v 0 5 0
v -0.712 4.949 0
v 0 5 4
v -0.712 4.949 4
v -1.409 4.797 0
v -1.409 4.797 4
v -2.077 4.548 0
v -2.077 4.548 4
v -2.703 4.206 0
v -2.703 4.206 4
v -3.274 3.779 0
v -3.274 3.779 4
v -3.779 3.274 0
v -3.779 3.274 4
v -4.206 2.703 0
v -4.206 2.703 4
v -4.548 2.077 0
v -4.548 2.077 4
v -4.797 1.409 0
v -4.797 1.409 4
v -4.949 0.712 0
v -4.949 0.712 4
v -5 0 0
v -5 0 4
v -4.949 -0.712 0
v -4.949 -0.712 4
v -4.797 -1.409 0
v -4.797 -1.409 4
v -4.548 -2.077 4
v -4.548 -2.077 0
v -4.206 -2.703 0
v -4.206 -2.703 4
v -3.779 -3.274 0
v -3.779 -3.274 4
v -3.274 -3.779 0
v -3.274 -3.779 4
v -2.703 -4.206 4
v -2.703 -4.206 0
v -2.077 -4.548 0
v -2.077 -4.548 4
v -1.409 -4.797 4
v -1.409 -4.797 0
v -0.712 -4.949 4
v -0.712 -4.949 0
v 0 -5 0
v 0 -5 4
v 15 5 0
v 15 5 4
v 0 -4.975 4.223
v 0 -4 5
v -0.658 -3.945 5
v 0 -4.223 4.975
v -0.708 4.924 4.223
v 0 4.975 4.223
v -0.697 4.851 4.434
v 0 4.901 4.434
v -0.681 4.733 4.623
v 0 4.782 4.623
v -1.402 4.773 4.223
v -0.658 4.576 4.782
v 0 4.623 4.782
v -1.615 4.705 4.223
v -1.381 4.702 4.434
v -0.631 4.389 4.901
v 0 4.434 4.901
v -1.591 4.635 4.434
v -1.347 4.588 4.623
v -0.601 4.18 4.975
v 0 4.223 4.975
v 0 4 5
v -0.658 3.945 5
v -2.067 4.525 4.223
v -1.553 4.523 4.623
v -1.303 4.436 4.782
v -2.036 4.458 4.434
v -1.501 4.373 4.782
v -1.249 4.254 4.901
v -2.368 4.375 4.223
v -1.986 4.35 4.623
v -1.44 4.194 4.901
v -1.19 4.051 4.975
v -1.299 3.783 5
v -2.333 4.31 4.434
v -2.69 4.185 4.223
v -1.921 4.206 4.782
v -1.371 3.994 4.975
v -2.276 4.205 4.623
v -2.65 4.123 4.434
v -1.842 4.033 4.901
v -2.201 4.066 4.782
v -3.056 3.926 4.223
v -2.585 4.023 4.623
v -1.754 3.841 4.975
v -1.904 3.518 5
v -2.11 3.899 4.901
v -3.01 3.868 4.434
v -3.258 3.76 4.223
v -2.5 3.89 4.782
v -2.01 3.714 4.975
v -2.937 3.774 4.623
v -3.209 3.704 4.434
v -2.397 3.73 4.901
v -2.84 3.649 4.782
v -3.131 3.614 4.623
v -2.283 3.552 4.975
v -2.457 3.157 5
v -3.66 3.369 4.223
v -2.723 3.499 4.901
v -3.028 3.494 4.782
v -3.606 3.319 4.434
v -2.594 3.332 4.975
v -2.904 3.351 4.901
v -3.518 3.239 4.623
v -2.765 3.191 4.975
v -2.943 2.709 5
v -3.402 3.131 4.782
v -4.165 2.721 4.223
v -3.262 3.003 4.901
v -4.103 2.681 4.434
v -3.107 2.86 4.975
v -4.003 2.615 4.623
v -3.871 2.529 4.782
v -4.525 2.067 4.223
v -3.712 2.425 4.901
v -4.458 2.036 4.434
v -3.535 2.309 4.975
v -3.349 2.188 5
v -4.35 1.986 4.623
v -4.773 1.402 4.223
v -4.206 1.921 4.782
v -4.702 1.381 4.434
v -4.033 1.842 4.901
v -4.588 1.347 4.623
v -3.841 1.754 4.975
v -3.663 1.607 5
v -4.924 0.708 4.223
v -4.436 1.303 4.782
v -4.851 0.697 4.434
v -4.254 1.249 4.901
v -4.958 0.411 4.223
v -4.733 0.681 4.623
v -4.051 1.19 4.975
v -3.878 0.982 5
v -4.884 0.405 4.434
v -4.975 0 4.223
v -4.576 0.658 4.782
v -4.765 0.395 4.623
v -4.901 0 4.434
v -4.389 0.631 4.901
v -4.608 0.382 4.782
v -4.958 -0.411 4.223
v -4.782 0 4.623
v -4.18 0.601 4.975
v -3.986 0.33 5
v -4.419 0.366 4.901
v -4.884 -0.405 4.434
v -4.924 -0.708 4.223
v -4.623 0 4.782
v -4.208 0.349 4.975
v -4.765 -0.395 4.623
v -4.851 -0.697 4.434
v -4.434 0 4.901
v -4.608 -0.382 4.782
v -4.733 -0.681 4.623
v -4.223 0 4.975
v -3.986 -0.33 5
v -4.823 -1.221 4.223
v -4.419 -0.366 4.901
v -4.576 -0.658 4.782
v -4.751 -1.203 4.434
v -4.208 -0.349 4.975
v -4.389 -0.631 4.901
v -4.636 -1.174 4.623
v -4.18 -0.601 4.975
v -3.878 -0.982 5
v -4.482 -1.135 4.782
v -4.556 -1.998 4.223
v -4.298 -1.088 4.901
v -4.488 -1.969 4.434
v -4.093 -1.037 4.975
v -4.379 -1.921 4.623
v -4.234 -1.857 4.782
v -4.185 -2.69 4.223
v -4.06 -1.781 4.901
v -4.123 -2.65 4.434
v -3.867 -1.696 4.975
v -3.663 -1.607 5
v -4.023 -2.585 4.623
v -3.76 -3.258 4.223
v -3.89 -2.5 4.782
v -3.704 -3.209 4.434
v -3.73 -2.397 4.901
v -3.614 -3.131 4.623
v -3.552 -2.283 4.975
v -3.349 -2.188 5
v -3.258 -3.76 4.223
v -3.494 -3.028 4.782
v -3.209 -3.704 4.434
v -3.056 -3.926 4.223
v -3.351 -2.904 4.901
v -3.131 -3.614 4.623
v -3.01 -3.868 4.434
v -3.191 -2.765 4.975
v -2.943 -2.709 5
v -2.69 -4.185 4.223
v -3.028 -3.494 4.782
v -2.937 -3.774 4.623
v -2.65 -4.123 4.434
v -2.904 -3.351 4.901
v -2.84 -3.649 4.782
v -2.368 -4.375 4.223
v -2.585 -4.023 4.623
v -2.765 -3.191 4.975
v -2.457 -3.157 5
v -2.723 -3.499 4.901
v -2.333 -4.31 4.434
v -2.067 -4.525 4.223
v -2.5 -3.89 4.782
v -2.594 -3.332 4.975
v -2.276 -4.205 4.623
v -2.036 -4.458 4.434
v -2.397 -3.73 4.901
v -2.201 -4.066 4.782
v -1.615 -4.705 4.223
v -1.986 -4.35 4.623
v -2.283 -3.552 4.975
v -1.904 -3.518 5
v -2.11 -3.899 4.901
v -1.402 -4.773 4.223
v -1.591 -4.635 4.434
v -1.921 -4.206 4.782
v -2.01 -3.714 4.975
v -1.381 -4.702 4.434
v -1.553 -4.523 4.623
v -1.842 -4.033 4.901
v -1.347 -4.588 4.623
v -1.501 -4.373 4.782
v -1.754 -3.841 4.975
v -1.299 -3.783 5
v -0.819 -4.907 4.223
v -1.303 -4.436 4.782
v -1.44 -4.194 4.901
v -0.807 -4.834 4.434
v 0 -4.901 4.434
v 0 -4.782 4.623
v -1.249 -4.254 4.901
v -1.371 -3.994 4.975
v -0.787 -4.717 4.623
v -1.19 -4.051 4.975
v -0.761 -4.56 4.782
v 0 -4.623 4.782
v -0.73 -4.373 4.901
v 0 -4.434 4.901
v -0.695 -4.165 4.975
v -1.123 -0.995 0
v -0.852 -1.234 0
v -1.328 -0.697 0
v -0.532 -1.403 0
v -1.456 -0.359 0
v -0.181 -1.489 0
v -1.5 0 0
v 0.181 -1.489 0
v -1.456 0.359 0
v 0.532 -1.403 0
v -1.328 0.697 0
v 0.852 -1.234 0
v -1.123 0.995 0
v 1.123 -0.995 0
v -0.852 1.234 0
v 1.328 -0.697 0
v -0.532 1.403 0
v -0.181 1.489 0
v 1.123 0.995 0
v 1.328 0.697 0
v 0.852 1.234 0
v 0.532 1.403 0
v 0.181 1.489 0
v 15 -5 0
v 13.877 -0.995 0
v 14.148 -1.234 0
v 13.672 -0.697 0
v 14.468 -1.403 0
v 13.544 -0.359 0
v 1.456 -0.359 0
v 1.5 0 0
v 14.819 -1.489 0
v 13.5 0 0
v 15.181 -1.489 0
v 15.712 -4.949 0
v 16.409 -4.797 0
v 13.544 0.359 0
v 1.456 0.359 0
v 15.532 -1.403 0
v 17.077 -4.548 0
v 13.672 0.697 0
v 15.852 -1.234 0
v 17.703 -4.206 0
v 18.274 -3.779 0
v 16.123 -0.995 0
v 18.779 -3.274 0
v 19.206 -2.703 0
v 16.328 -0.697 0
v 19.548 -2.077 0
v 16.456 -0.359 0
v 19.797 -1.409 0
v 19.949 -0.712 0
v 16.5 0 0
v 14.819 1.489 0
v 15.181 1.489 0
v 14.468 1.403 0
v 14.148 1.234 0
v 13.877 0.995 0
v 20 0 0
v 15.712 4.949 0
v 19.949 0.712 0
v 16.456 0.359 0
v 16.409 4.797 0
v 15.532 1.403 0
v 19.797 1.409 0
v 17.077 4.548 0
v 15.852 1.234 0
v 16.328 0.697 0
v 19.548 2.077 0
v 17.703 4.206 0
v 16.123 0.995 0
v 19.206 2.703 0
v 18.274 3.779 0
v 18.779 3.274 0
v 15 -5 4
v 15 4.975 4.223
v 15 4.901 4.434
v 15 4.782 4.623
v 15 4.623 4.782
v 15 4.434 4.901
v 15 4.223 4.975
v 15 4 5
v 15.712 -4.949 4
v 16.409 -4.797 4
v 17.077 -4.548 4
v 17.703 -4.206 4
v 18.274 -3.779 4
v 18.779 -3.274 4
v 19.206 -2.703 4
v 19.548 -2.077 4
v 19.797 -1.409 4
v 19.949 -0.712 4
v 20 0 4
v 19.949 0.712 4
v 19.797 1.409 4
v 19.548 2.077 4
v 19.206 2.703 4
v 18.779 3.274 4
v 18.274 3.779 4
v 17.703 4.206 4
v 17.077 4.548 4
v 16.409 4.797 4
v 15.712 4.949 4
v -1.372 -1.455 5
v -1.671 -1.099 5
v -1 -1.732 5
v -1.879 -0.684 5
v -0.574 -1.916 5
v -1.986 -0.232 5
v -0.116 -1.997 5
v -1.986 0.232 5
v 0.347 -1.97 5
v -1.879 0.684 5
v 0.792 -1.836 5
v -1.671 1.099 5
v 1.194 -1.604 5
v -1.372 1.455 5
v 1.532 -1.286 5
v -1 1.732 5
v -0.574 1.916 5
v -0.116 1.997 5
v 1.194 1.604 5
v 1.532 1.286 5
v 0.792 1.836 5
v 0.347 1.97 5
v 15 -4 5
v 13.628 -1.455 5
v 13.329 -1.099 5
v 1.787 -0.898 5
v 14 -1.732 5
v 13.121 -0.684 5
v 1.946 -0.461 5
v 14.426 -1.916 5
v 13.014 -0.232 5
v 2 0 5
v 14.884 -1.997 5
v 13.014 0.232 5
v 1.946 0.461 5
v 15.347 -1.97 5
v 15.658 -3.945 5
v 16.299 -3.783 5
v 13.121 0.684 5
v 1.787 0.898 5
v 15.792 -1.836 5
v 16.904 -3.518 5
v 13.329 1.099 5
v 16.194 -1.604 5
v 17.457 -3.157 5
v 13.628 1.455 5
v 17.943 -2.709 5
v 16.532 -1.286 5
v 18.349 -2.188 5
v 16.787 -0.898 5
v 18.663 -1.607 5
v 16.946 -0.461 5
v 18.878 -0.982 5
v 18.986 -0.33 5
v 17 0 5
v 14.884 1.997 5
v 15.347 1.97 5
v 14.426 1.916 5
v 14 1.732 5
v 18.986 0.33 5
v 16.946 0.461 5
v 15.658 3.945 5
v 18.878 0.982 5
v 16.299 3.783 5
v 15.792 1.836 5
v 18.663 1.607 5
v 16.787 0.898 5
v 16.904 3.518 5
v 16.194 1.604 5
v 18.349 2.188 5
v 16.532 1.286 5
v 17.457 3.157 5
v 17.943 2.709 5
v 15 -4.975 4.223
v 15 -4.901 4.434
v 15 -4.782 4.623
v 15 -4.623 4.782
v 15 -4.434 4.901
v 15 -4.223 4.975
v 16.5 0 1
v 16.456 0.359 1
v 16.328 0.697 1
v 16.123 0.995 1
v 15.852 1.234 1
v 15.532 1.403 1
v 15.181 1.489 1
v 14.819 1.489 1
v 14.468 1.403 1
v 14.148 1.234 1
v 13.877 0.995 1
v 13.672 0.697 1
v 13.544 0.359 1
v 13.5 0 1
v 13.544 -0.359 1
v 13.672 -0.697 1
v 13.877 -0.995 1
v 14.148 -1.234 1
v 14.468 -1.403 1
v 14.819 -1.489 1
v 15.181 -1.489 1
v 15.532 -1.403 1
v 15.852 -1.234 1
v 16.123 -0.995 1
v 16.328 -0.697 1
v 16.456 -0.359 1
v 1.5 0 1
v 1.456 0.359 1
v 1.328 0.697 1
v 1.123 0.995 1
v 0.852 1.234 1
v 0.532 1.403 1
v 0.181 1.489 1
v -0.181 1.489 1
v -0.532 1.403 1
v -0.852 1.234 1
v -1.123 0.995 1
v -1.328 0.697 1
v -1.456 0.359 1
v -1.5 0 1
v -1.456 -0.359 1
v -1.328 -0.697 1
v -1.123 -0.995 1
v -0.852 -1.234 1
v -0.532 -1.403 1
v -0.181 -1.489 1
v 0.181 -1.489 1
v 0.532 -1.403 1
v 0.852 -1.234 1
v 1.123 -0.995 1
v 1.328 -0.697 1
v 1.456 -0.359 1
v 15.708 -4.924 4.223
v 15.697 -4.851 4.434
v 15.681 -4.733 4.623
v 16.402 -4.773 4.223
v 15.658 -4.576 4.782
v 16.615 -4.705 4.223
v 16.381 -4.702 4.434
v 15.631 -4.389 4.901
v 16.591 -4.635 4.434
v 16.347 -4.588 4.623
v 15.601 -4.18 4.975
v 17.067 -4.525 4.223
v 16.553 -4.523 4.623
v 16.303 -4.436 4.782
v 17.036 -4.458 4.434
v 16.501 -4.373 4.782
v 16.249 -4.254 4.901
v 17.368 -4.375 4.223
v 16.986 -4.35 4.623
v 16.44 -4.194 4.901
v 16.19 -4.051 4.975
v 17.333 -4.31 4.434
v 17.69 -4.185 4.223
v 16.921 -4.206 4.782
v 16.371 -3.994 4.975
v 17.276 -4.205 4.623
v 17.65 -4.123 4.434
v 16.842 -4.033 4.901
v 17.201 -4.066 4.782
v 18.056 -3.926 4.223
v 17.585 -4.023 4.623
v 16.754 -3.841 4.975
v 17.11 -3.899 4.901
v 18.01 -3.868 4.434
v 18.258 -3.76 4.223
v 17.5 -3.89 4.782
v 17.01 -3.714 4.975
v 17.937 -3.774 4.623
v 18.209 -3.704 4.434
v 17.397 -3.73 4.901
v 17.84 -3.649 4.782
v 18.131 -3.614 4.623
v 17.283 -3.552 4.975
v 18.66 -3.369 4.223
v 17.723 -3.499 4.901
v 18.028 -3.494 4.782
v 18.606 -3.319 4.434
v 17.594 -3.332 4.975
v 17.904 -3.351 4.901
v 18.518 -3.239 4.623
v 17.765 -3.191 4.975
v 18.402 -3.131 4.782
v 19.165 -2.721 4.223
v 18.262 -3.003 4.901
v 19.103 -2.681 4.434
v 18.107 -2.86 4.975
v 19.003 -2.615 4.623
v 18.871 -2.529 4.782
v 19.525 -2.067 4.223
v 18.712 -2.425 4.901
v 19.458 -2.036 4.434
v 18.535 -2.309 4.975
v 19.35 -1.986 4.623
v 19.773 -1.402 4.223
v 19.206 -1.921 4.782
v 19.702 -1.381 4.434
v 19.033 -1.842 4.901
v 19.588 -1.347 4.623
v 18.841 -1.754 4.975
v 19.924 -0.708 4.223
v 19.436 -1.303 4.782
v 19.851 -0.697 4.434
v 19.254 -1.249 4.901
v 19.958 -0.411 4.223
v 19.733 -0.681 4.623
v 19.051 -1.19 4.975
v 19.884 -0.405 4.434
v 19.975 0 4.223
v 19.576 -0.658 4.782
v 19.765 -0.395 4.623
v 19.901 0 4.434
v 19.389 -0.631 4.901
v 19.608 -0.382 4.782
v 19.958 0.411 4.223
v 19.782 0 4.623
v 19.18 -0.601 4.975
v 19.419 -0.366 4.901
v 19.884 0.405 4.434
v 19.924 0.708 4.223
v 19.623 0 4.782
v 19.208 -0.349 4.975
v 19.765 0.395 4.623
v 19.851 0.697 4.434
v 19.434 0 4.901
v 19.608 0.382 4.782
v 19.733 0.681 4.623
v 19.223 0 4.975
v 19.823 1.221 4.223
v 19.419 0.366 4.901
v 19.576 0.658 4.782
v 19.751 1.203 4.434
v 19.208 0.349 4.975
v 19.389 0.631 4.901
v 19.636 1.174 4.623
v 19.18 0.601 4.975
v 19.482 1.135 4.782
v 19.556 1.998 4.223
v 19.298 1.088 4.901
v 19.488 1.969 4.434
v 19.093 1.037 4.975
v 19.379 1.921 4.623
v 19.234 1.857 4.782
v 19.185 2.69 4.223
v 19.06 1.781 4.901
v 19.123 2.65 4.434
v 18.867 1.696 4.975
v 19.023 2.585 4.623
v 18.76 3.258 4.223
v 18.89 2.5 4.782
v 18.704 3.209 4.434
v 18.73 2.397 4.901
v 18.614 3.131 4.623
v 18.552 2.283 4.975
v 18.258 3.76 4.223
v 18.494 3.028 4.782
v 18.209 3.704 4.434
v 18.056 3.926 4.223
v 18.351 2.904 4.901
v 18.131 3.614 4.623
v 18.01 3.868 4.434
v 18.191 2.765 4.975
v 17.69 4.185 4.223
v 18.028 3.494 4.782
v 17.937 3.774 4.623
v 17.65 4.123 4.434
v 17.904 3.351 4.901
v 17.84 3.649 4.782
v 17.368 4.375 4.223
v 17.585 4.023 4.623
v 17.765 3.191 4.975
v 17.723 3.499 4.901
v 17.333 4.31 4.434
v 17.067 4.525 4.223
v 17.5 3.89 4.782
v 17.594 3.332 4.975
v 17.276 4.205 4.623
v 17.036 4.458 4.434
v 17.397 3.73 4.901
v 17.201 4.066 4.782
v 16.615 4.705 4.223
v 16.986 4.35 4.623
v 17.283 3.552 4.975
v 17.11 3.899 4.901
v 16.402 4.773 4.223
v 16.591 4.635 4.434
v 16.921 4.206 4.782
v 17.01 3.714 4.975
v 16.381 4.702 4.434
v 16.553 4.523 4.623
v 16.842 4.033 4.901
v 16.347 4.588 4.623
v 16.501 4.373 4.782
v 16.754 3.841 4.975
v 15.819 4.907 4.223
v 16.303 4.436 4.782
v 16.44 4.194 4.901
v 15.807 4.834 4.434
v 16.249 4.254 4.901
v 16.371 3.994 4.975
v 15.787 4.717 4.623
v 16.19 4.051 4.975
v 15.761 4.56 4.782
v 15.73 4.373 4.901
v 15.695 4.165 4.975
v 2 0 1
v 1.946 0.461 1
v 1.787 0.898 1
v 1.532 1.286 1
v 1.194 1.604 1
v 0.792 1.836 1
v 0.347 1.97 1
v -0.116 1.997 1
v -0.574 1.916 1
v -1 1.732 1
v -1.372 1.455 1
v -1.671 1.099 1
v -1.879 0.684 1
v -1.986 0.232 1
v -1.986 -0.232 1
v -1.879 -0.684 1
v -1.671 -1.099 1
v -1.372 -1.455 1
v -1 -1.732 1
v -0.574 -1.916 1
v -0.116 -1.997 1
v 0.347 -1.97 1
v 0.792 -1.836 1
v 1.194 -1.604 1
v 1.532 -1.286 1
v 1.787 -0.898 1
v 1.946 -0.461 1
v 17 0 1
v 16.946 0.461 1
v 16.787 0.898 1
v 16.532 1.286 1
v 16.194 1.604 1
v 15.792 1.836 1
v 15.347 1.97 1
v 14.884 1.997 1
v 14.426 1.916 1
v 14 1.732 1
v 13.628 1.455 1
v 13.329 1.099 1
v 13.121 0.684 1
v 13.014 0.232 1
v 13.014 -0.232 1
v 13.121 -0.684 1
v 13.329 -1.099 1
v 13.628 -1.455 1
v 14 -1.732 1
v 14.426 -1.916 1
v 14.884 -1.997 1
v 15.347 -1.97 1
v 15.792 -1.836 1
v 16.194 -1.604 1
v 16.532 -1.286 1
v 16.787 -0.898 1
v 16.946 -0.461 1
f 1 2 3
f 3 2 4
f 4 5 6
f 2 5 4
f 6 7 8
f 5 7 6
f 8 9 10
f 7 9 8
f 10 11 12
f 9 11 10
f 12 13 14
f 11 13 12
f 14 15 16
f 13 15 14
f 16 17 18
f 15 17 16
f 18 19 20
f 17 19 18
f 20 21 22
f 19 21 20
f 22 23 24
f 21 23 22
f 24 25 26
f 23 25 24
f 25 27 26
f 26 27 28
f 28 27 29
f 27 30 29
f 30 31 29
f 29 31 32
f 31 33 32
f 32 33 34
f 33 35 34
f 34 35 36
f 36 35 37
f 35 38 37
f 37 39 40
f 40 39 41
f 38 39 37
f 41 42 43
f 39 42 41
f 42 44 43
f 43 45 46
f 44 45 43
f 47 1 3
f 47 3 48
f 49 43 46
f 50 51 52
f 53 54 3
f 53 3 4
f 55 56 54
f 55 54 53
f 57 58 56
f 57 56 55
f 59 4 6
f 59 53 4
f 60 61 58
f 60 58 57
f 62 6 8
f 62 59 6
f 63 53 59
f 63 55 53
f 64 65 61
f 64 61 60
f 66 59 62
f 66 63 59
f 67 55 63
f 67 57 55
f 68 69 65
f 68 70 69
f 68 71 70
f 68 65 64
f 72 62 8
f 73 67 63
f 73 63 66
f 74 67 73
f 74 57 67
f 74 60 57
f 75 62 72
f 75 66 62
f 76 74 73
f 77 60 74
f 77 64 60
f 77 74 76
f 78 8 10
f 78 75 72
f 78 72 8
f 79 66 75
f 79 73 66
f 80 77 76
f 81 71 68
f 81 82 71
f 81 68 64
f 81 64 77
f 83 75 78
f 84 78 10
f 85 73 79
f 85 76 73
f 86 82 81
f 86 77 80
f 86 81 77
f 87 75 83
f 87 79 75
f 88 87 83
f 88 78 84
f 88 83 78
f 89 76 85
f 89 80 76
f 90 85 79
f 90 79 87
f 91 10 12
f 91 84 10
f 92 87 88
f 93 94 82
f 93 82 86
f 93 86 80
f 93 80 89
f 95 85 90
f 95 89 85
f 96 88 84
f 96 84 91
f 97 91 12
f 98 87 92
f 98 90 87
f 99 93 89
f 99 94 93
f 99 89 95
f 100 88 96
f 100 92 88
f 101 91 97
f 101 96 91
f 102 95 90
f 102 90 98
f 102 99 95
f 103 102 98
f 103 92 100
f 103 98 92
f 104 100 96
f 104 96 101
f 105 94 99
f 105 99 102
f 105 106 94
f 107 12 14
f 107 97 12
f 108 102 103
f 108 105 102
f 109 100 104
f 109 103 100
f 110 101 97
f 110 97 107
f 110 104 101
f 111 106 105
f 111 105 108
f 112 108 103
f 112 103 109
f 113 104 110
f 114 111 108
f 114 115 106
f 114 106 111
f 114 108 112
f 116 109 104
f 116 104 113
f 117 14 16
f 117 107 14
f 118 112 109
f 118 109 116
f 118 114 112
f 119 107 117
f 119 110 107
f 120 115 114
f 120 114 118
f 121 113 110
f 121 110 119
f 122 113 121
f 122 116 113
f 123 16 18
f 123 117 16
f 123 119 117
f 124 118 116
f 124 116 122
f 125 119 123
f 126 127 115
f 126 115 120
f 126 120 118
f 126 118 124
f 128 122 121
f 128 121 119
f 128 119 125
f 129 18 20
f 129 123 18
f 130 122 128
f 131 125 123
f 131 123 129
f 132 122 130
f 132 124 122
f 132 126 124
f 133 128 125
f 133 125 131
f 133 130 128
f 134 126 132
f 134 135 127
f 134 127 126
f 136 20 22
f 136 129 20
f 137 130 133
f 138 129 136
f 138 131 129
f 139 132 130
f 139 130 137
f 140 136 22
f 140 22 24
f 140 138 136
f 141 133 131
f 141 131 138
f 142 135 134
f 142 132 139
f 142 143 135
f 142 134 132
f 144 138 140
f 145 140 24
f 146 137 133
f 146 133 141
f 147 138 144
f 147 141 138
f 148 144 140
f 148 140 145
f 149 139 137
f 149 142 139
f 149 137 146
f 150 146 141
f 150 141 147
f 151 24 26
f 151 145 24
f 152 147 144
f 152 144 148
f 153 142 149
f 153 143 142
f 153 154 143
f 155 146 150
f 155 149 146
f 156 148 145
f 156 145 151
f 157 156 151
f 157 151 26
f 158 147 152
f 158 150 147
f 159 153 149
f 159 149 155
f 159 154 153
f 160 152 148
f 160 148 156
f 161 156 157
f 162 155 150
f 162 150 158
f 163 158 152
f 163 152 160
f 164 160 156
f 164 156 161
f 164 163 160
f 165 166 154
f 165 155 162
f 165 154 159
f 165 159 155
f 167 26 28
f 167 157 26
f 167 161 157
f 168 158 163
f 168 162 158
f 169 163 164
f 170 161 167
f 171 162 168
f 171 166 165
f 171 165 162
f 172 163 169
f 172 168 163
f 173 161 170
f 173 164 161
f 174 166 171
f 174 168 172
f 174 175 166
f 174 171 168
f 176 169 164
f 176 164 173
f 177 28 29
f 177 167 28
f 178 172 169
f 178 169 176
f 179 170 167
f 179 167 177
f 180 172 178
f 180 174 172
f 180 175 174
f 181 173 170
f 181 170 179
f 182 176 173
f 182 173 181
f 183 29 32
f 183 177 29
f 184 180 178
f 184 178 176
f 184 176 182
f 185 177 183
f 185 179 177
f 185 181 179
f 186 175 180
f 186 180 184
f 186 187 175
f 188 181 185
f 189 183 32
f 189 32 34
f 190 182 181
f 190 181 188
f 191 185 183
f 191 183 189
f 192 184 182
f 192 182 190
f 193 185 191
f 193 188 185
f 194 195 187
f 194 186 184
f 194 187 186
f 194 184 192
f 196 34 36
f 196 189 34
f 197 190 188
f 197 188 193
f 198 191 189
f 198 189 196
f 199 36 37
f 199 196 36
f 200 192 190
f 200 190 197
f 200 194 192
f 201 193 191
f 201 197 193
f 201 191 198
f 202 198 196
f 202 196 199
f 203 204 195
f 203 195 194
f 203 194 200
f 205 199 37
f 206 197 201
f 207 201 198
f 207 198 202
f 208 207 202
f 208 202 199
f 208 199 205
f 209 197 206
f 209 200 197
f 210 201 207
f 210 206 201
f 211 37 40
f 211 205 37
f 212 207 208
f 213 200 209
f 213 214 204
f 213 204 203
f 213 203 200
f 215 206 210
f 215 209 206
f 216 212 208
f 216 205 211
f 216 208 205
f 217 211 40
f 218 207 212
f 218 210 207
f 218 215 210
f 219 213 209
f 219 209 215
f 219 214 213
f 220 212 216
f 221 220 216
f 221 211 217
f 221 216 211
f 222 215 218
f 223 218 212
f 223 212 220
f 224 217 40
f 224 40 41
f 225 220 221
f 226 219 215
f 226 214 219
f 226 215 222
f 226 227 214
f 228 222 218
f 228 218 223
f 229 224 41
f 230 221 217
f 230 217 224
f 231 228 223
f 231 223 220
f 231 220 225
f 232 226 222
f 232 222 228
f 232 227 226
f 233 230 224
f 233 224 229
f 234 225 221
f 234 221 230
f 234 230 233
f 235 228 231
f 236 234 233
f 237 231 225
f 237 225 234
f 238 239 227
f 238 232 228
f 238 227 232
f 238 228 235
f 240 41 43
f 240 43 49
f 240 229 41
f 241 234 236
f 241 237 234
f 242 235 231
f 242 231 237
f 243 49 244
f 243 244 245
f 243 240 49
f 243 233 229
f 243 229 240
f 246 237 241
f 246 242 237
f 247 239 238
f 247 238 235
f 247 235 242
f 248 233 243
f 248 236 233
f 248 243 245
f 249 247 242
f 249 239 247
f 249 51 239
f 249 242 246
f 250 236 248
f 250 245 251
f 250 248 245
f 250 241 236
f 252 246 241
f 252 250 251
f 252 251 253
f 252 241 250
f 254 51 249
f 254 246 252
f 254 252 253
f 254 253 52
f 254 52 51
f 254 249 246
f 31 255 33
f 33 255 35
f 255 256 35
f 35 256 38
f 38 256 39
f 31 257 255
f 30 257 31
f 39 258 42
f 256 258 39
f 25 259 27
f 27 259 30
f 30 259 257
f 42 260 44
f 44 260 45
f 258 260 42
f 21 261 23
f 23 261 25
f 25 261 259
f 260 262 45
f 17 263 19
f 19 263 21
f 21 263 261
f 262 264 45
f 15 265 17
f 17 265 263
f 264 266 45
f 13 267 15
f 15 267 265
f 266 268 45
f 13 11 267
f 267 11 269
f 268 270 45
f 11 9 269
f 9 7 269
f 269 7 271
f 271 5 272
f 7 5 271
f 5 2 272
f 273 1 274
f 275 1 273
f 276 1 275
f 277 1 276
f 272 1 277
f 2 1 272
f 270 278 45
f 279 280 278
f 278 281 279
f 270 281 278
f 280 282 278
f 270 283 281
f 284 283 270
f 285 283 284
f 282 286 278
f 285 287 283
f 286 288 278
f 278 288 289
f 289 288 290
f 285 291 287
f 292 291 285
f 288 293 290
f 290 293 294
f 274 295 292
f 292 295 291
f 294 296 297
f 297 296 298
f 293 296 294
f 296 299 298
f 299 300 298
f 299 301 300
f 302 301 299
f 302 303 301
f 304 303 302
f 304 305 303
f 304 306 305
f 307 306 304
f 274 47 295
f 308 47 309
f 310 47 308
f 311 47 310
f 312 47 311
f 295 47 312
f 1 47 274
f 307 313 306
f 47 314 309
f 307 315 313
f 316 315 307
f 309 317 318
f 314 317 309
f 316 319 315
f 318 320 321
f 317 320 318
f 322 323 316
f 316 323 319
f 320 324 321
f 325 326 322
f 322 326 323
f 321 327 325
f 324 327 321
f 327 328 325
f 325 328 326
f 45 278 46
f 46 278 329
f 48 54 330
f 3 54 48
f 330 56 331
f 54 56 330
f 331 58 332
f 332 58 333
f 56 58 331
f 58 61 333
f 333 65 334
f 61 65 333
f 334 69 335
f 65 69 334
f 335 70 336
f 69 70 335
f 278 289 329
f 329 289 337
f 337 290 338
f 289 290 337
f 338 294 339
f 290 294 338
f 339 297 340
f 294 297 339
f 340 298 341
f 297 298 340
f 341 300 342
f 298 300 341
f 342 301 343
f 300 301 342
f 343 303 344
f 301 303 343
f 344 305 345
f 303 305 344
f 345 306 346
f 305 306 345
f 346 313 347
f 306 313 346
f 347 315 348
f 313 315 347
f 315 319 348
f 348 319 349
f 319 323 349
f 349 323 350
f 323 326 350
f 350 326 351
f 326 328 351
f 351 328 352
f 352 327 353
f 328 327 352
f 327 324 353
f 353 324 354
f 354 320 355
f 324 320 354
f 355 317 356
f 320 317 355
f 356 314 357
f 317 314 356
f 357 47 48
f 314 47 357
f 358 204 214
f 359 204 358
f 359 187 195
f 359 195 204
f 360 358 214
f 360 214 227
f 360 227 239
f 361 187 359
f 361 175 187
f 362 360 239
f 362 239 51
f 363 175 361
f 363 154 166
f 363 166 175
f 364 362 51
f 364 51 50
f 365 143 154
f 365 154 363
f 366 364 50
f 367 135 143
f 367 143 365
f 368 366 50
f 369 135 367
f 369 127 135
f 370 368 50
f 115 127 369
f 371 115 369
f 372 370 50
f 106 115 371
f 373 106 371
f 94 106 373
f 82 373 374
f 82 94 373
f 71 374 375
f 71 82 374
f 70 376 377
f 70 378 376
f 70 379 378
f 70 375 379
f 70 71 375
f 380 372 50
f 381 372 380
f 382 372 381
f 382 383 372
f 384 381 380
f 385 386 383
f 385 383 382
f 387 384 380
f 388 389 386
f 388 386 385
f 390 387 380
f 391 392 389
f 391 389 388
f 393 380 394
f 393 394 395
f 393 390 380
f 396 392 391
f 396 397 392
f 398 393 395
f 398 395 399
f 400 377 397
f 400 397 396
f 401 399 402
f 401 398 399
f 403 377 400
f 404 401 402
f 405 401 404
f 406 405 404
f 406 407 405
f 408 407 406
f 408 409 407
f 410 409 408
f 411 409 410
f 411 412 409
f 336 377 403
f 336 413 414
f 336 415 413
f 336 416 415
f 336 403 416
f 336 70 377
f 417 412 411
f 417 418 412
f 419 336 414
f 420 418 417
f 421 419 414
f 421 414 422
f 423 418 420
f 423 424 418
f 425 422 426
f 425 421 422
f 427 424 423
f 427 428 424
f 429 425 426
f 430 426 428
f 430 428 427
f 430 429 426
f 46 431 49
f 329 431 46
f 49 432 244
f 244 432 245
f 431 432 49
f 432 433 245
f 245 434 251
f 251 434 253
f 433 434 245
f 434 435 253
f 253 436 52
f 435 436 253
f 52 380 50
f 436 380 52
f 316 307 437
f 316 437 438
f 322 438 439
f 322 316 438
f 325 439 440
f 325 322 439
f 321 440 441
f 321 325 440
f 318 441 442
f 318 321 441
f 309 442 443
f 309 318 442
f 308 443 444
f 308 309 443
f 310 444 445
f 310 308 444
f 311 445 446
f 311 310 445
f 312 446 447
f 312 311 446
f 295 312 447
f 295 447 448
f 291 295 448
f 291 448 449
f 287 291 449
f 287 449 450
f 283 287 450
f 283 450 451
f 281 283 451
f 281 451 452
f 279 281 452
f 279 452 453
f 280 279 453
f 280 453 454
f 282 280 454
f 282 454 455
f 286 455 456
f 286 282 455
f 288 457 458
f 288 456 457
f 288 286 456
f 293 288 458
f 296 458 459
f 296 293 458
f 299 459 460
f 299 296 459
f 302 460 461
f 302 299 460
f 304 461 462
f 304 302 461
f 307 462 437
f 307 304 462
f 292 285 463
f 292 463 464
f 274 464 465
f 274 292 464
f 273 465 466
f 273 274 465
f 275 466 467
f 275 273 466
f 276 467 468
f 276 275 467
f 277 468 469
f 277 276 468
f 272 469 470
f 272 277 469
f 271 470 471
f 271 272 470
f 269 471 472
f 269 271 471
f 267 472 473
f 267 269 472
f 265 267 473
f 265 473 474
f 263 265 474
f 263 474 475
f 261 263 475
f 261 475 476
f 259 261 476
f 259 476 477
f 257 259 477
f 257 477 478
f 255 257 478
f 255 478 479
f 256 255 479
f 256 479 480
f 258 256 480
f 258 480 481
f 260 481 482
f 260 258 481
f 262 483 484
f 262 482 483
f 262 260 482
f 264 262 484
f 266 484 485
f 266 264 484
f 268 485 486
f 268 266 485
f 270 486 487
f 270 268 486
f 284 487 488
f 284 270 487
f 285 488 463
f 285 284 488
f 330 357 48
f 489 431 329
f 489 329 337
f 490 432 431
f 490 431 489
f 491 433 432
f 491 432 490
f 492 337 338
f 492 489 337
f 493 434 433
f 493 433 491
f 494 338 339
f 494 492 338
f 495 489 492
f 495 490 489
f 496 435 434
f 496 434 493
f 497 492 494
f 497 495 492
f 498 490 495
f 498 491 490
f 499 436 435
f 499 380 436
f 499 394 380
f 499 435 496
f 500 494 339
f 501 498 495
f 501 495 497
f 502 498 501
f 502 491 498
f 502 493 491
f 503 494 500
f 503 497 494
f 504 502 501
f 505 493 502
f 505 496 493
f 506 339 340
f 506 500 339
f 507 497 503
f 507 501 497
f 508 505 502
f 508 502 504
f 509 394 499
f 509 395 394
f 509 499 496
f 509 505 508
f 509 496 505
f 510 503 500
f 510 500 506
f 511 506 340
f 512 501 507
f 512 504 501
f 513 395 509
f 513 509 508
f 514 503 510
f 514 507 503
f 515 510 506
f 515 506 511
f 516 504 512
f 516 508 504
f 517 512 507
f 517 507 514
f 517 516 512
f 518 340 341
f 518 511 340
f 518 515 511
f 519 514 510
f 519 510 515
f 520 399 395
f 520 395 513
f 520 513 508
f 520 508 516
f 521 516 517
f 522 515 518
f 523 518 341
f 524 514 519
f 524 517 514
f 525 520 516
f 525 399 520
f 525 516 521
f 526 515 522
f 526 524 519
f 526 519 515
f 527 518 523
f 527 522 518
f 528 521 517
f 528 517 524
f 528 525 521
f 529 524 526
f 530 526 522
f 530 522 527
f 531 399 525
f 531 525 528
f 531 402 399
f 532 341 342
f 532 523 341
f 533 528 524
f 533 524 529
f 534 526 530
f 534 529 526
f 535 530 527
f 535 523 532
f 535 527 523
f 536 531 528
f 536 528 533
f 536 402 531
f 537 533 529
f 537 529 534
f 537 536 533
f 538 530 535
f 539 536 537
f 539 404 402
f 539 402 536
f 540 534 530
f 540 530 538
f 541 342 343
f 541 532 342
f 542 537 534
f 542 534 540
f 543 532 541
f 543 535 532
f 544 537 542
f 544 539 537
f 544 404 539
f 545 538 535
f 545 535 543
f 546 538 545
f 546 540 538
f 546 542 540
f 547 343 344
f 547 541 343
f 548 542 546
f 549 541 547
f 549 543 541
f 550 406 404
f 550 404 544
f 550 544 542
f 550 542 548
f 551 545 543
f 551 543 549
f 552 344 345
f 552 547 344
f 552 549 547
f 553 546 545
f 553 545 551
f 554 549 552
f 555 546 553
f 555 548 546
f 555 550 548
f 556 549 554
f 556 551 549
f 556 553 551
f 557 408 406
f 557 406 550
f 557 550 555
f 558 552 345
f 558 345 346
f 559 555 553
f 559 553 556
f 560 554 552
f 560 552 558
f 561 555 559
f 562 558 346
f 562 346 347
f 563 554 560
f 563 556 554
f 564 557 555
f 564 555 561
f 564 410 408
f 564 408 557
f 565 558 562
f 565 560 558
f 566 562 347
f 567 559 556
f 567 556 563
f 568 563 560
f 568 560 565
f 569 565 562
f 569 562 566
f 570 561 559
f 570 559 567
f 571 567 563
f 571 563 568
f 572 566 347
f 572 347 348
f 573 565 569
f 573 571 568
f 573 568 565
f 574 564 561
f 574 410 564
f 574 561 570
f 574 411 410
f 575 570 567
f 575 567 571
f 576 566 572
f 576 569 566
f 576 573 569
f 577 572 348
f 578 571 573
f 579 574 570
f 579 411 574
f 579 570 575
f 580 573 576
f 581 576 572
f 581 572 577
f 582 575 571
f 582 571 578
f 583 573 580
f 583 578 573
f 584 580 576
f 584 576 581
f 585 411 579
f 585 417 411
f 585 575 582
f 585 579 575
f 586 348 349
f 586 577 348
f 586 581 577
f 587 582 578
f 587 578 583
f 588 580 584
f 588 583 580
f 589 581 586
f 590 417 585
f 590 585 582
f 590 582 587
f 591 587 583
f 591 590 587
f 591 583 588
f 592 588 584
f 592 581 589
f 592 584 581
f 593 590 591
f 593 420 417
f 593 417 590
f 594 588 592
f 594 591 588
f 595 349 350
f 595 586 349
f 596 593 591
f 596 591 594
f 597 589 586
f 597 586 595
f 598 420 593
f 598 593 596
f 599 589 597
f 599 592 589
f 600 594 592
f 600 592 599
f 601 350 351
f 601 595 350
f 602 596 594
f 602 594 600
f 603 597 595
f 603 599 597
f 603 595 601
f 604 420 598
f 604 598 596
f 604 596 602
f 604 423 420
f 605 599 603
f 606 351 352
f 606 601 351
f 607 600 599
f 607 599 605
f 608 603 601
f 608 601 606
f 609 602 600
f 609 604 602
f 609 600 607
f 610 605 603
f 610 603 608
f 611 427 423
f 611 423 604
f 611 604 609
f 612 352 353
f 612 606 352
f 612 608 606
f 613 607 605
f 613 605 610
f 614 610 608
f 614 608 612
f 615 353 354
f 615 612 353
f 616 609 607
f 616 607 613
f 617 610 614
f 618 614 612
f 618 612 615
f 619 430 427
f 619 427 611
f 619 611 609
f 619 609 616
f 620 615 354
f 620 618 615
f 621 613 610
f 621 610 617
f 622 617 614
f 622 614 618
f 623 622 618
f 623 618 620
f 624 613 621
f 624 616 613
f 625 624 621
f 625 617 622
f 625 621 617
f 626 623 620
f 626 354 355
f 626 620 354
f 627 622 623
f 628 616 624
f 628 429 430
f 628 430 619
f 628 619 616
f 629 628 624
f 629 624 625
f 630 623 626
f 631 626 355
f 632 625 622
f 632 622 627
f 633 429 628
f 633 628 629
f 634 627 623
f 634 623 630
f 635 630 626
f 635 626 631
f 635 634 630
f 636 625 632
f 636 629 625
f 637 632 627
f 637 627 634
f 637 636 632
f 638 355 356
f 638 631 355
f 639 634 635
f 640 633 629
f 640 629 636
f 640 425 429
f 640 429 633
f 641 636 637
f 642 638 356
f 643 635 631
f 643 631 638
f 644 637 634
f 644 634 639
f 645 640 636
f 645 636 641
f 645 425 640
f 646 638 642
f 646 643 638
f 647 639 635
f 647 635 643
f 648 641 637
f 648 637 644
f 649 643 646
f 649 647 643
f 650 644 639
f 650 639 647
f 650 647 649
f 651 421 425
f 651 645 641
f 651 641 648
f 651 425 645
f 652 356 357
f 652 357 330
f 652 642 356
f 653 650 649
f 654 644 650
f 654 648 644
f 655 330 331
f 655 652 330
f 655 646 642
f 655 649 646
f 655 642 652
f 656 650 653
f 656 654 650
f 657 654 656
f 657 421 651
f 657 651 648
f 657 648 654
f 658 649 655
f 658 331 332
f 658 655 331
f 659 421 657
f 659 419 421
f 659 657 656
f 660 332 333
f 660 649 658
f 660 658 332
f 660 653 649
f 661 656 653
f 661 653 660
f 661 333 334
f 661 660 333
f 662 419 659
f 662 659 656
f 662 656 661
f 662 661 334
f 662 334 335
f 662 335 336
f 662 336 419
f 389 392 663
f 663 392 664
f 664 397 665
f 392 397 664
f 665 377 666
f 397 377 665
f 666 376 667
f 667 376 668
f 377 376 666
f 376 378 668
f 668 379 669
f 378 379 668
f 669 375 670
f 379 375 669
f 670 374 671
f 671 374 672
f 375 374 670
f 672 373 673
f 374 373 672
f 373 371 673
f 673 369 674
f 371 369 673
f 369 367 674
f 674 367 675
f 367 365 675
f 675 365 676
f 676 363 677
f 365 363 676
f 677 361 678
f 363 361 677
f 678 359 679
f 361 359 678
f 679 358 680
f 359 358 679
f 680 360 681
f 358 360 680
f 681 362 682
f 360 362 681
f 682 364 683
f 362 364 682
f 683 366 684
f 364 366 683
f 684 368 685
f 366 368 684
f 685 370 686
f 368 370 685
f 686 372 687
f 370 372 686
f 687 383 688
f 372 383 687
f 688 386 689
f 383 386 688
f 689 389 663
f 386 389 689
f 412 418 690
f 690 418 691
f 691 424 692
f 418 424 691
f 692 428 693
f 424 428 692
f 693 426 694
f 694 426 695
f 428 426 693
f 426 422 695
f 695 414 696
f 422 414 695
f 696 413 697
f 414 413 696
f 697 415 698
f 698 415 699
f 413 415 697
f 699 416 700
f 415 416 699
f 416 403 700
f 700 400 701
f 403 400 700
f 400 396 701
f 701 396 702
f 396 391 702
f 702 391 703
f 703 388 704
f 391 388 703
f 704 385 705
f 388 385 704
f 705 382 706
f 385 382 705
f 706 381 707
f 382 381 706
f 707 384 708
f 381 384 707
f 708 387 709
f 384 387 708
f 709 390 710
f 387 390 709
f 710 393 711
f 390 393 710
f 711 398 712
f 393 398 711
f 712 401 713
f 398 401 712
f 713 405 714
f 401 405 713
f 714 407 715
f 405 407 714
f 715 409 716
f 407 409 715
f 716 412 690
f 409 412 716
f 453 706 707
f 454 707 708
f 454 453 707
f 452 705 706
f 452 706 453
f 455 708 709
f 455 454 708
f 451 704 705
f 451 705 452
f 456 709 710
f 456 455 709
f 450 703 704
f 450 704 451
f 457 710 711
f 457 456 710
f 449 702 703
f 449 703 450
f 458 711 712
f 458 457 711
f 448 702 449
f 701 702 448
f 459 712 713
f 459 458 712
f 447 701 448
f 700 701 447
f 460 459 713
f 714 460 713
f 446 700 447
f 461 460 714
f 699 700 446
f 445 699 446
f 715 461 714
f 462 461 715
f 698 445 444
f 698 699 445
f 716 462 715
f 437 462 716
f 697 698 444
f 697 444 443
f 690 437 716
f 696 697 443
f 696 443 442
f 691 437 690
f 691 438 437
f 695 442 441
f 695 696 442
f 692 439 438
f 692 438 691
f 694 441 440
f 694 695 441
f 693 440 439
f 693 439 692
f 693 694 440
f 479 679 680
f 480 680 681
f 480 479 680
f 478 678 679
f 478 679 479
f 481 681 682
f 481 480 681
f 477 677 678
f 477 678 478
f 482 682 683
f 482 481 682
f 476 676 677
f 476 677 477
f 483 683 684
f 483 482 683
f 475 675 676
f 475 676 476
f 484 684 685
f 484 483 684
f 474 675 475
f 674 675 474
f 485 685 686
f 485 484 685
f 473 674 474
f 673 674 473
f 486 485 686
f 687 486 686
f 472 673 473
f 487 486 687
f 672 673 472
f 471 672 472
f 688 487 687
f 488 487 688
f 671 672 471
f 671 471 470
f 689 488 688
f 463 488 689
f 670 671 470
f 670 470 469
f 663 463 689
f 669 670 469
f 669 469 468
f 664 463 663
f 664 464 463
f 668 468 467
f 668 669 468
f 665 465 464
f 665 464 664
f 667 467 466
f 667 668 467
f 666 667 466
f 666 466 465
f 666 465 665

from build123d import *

# Parameters (mm, degrees)
SKETCH_R     = 1.5
PAD_DEPTH    = 5
SKETCH001_R  = 2
POCKET_DEPTH = 4
FILLET_R     = 1


with BuildPart() as part:
    # Sketch → Pad (new body)
    with BuildSketch(Plane.XY):
        with BuildLine():
            ThreePointArc((0, 5), (-5, 0), (0, -5))
            Line((0, -5), (15, -5))
            ThreePointArc((15, -5), (20, 0), (15, 5))
            Line((0, 5), (15, 5))
        make_face()
        Circle(SKETCH_R, mode=Mode.SUBTRACT)
        with Locations((15, 0)):
            Circle(SKETCH_R, mode=Mode.SUBTRACT)
    extrude(amount=PAD_DEPTH)

    # Sketch001 (on Face8 of Pad) → Pocket (cut)
    with BuildSketch(Plane.XY.offset(5)):
        Circle(SKETCH001_R)
        with Locations((15, 0)):
            Circle(SKETCH001_R)
    extrude(amount=-POCKET_DEPTH, mode=Mode.SUBTRACT)

    # Fillet
    fillet_edges = [part.edges().sort_by_distance(p)[0] for p in [
        (7.5, -5, 5),
    ]]
    fillet(fillet_edges, radius=FILLET_R)


solid = part.part
